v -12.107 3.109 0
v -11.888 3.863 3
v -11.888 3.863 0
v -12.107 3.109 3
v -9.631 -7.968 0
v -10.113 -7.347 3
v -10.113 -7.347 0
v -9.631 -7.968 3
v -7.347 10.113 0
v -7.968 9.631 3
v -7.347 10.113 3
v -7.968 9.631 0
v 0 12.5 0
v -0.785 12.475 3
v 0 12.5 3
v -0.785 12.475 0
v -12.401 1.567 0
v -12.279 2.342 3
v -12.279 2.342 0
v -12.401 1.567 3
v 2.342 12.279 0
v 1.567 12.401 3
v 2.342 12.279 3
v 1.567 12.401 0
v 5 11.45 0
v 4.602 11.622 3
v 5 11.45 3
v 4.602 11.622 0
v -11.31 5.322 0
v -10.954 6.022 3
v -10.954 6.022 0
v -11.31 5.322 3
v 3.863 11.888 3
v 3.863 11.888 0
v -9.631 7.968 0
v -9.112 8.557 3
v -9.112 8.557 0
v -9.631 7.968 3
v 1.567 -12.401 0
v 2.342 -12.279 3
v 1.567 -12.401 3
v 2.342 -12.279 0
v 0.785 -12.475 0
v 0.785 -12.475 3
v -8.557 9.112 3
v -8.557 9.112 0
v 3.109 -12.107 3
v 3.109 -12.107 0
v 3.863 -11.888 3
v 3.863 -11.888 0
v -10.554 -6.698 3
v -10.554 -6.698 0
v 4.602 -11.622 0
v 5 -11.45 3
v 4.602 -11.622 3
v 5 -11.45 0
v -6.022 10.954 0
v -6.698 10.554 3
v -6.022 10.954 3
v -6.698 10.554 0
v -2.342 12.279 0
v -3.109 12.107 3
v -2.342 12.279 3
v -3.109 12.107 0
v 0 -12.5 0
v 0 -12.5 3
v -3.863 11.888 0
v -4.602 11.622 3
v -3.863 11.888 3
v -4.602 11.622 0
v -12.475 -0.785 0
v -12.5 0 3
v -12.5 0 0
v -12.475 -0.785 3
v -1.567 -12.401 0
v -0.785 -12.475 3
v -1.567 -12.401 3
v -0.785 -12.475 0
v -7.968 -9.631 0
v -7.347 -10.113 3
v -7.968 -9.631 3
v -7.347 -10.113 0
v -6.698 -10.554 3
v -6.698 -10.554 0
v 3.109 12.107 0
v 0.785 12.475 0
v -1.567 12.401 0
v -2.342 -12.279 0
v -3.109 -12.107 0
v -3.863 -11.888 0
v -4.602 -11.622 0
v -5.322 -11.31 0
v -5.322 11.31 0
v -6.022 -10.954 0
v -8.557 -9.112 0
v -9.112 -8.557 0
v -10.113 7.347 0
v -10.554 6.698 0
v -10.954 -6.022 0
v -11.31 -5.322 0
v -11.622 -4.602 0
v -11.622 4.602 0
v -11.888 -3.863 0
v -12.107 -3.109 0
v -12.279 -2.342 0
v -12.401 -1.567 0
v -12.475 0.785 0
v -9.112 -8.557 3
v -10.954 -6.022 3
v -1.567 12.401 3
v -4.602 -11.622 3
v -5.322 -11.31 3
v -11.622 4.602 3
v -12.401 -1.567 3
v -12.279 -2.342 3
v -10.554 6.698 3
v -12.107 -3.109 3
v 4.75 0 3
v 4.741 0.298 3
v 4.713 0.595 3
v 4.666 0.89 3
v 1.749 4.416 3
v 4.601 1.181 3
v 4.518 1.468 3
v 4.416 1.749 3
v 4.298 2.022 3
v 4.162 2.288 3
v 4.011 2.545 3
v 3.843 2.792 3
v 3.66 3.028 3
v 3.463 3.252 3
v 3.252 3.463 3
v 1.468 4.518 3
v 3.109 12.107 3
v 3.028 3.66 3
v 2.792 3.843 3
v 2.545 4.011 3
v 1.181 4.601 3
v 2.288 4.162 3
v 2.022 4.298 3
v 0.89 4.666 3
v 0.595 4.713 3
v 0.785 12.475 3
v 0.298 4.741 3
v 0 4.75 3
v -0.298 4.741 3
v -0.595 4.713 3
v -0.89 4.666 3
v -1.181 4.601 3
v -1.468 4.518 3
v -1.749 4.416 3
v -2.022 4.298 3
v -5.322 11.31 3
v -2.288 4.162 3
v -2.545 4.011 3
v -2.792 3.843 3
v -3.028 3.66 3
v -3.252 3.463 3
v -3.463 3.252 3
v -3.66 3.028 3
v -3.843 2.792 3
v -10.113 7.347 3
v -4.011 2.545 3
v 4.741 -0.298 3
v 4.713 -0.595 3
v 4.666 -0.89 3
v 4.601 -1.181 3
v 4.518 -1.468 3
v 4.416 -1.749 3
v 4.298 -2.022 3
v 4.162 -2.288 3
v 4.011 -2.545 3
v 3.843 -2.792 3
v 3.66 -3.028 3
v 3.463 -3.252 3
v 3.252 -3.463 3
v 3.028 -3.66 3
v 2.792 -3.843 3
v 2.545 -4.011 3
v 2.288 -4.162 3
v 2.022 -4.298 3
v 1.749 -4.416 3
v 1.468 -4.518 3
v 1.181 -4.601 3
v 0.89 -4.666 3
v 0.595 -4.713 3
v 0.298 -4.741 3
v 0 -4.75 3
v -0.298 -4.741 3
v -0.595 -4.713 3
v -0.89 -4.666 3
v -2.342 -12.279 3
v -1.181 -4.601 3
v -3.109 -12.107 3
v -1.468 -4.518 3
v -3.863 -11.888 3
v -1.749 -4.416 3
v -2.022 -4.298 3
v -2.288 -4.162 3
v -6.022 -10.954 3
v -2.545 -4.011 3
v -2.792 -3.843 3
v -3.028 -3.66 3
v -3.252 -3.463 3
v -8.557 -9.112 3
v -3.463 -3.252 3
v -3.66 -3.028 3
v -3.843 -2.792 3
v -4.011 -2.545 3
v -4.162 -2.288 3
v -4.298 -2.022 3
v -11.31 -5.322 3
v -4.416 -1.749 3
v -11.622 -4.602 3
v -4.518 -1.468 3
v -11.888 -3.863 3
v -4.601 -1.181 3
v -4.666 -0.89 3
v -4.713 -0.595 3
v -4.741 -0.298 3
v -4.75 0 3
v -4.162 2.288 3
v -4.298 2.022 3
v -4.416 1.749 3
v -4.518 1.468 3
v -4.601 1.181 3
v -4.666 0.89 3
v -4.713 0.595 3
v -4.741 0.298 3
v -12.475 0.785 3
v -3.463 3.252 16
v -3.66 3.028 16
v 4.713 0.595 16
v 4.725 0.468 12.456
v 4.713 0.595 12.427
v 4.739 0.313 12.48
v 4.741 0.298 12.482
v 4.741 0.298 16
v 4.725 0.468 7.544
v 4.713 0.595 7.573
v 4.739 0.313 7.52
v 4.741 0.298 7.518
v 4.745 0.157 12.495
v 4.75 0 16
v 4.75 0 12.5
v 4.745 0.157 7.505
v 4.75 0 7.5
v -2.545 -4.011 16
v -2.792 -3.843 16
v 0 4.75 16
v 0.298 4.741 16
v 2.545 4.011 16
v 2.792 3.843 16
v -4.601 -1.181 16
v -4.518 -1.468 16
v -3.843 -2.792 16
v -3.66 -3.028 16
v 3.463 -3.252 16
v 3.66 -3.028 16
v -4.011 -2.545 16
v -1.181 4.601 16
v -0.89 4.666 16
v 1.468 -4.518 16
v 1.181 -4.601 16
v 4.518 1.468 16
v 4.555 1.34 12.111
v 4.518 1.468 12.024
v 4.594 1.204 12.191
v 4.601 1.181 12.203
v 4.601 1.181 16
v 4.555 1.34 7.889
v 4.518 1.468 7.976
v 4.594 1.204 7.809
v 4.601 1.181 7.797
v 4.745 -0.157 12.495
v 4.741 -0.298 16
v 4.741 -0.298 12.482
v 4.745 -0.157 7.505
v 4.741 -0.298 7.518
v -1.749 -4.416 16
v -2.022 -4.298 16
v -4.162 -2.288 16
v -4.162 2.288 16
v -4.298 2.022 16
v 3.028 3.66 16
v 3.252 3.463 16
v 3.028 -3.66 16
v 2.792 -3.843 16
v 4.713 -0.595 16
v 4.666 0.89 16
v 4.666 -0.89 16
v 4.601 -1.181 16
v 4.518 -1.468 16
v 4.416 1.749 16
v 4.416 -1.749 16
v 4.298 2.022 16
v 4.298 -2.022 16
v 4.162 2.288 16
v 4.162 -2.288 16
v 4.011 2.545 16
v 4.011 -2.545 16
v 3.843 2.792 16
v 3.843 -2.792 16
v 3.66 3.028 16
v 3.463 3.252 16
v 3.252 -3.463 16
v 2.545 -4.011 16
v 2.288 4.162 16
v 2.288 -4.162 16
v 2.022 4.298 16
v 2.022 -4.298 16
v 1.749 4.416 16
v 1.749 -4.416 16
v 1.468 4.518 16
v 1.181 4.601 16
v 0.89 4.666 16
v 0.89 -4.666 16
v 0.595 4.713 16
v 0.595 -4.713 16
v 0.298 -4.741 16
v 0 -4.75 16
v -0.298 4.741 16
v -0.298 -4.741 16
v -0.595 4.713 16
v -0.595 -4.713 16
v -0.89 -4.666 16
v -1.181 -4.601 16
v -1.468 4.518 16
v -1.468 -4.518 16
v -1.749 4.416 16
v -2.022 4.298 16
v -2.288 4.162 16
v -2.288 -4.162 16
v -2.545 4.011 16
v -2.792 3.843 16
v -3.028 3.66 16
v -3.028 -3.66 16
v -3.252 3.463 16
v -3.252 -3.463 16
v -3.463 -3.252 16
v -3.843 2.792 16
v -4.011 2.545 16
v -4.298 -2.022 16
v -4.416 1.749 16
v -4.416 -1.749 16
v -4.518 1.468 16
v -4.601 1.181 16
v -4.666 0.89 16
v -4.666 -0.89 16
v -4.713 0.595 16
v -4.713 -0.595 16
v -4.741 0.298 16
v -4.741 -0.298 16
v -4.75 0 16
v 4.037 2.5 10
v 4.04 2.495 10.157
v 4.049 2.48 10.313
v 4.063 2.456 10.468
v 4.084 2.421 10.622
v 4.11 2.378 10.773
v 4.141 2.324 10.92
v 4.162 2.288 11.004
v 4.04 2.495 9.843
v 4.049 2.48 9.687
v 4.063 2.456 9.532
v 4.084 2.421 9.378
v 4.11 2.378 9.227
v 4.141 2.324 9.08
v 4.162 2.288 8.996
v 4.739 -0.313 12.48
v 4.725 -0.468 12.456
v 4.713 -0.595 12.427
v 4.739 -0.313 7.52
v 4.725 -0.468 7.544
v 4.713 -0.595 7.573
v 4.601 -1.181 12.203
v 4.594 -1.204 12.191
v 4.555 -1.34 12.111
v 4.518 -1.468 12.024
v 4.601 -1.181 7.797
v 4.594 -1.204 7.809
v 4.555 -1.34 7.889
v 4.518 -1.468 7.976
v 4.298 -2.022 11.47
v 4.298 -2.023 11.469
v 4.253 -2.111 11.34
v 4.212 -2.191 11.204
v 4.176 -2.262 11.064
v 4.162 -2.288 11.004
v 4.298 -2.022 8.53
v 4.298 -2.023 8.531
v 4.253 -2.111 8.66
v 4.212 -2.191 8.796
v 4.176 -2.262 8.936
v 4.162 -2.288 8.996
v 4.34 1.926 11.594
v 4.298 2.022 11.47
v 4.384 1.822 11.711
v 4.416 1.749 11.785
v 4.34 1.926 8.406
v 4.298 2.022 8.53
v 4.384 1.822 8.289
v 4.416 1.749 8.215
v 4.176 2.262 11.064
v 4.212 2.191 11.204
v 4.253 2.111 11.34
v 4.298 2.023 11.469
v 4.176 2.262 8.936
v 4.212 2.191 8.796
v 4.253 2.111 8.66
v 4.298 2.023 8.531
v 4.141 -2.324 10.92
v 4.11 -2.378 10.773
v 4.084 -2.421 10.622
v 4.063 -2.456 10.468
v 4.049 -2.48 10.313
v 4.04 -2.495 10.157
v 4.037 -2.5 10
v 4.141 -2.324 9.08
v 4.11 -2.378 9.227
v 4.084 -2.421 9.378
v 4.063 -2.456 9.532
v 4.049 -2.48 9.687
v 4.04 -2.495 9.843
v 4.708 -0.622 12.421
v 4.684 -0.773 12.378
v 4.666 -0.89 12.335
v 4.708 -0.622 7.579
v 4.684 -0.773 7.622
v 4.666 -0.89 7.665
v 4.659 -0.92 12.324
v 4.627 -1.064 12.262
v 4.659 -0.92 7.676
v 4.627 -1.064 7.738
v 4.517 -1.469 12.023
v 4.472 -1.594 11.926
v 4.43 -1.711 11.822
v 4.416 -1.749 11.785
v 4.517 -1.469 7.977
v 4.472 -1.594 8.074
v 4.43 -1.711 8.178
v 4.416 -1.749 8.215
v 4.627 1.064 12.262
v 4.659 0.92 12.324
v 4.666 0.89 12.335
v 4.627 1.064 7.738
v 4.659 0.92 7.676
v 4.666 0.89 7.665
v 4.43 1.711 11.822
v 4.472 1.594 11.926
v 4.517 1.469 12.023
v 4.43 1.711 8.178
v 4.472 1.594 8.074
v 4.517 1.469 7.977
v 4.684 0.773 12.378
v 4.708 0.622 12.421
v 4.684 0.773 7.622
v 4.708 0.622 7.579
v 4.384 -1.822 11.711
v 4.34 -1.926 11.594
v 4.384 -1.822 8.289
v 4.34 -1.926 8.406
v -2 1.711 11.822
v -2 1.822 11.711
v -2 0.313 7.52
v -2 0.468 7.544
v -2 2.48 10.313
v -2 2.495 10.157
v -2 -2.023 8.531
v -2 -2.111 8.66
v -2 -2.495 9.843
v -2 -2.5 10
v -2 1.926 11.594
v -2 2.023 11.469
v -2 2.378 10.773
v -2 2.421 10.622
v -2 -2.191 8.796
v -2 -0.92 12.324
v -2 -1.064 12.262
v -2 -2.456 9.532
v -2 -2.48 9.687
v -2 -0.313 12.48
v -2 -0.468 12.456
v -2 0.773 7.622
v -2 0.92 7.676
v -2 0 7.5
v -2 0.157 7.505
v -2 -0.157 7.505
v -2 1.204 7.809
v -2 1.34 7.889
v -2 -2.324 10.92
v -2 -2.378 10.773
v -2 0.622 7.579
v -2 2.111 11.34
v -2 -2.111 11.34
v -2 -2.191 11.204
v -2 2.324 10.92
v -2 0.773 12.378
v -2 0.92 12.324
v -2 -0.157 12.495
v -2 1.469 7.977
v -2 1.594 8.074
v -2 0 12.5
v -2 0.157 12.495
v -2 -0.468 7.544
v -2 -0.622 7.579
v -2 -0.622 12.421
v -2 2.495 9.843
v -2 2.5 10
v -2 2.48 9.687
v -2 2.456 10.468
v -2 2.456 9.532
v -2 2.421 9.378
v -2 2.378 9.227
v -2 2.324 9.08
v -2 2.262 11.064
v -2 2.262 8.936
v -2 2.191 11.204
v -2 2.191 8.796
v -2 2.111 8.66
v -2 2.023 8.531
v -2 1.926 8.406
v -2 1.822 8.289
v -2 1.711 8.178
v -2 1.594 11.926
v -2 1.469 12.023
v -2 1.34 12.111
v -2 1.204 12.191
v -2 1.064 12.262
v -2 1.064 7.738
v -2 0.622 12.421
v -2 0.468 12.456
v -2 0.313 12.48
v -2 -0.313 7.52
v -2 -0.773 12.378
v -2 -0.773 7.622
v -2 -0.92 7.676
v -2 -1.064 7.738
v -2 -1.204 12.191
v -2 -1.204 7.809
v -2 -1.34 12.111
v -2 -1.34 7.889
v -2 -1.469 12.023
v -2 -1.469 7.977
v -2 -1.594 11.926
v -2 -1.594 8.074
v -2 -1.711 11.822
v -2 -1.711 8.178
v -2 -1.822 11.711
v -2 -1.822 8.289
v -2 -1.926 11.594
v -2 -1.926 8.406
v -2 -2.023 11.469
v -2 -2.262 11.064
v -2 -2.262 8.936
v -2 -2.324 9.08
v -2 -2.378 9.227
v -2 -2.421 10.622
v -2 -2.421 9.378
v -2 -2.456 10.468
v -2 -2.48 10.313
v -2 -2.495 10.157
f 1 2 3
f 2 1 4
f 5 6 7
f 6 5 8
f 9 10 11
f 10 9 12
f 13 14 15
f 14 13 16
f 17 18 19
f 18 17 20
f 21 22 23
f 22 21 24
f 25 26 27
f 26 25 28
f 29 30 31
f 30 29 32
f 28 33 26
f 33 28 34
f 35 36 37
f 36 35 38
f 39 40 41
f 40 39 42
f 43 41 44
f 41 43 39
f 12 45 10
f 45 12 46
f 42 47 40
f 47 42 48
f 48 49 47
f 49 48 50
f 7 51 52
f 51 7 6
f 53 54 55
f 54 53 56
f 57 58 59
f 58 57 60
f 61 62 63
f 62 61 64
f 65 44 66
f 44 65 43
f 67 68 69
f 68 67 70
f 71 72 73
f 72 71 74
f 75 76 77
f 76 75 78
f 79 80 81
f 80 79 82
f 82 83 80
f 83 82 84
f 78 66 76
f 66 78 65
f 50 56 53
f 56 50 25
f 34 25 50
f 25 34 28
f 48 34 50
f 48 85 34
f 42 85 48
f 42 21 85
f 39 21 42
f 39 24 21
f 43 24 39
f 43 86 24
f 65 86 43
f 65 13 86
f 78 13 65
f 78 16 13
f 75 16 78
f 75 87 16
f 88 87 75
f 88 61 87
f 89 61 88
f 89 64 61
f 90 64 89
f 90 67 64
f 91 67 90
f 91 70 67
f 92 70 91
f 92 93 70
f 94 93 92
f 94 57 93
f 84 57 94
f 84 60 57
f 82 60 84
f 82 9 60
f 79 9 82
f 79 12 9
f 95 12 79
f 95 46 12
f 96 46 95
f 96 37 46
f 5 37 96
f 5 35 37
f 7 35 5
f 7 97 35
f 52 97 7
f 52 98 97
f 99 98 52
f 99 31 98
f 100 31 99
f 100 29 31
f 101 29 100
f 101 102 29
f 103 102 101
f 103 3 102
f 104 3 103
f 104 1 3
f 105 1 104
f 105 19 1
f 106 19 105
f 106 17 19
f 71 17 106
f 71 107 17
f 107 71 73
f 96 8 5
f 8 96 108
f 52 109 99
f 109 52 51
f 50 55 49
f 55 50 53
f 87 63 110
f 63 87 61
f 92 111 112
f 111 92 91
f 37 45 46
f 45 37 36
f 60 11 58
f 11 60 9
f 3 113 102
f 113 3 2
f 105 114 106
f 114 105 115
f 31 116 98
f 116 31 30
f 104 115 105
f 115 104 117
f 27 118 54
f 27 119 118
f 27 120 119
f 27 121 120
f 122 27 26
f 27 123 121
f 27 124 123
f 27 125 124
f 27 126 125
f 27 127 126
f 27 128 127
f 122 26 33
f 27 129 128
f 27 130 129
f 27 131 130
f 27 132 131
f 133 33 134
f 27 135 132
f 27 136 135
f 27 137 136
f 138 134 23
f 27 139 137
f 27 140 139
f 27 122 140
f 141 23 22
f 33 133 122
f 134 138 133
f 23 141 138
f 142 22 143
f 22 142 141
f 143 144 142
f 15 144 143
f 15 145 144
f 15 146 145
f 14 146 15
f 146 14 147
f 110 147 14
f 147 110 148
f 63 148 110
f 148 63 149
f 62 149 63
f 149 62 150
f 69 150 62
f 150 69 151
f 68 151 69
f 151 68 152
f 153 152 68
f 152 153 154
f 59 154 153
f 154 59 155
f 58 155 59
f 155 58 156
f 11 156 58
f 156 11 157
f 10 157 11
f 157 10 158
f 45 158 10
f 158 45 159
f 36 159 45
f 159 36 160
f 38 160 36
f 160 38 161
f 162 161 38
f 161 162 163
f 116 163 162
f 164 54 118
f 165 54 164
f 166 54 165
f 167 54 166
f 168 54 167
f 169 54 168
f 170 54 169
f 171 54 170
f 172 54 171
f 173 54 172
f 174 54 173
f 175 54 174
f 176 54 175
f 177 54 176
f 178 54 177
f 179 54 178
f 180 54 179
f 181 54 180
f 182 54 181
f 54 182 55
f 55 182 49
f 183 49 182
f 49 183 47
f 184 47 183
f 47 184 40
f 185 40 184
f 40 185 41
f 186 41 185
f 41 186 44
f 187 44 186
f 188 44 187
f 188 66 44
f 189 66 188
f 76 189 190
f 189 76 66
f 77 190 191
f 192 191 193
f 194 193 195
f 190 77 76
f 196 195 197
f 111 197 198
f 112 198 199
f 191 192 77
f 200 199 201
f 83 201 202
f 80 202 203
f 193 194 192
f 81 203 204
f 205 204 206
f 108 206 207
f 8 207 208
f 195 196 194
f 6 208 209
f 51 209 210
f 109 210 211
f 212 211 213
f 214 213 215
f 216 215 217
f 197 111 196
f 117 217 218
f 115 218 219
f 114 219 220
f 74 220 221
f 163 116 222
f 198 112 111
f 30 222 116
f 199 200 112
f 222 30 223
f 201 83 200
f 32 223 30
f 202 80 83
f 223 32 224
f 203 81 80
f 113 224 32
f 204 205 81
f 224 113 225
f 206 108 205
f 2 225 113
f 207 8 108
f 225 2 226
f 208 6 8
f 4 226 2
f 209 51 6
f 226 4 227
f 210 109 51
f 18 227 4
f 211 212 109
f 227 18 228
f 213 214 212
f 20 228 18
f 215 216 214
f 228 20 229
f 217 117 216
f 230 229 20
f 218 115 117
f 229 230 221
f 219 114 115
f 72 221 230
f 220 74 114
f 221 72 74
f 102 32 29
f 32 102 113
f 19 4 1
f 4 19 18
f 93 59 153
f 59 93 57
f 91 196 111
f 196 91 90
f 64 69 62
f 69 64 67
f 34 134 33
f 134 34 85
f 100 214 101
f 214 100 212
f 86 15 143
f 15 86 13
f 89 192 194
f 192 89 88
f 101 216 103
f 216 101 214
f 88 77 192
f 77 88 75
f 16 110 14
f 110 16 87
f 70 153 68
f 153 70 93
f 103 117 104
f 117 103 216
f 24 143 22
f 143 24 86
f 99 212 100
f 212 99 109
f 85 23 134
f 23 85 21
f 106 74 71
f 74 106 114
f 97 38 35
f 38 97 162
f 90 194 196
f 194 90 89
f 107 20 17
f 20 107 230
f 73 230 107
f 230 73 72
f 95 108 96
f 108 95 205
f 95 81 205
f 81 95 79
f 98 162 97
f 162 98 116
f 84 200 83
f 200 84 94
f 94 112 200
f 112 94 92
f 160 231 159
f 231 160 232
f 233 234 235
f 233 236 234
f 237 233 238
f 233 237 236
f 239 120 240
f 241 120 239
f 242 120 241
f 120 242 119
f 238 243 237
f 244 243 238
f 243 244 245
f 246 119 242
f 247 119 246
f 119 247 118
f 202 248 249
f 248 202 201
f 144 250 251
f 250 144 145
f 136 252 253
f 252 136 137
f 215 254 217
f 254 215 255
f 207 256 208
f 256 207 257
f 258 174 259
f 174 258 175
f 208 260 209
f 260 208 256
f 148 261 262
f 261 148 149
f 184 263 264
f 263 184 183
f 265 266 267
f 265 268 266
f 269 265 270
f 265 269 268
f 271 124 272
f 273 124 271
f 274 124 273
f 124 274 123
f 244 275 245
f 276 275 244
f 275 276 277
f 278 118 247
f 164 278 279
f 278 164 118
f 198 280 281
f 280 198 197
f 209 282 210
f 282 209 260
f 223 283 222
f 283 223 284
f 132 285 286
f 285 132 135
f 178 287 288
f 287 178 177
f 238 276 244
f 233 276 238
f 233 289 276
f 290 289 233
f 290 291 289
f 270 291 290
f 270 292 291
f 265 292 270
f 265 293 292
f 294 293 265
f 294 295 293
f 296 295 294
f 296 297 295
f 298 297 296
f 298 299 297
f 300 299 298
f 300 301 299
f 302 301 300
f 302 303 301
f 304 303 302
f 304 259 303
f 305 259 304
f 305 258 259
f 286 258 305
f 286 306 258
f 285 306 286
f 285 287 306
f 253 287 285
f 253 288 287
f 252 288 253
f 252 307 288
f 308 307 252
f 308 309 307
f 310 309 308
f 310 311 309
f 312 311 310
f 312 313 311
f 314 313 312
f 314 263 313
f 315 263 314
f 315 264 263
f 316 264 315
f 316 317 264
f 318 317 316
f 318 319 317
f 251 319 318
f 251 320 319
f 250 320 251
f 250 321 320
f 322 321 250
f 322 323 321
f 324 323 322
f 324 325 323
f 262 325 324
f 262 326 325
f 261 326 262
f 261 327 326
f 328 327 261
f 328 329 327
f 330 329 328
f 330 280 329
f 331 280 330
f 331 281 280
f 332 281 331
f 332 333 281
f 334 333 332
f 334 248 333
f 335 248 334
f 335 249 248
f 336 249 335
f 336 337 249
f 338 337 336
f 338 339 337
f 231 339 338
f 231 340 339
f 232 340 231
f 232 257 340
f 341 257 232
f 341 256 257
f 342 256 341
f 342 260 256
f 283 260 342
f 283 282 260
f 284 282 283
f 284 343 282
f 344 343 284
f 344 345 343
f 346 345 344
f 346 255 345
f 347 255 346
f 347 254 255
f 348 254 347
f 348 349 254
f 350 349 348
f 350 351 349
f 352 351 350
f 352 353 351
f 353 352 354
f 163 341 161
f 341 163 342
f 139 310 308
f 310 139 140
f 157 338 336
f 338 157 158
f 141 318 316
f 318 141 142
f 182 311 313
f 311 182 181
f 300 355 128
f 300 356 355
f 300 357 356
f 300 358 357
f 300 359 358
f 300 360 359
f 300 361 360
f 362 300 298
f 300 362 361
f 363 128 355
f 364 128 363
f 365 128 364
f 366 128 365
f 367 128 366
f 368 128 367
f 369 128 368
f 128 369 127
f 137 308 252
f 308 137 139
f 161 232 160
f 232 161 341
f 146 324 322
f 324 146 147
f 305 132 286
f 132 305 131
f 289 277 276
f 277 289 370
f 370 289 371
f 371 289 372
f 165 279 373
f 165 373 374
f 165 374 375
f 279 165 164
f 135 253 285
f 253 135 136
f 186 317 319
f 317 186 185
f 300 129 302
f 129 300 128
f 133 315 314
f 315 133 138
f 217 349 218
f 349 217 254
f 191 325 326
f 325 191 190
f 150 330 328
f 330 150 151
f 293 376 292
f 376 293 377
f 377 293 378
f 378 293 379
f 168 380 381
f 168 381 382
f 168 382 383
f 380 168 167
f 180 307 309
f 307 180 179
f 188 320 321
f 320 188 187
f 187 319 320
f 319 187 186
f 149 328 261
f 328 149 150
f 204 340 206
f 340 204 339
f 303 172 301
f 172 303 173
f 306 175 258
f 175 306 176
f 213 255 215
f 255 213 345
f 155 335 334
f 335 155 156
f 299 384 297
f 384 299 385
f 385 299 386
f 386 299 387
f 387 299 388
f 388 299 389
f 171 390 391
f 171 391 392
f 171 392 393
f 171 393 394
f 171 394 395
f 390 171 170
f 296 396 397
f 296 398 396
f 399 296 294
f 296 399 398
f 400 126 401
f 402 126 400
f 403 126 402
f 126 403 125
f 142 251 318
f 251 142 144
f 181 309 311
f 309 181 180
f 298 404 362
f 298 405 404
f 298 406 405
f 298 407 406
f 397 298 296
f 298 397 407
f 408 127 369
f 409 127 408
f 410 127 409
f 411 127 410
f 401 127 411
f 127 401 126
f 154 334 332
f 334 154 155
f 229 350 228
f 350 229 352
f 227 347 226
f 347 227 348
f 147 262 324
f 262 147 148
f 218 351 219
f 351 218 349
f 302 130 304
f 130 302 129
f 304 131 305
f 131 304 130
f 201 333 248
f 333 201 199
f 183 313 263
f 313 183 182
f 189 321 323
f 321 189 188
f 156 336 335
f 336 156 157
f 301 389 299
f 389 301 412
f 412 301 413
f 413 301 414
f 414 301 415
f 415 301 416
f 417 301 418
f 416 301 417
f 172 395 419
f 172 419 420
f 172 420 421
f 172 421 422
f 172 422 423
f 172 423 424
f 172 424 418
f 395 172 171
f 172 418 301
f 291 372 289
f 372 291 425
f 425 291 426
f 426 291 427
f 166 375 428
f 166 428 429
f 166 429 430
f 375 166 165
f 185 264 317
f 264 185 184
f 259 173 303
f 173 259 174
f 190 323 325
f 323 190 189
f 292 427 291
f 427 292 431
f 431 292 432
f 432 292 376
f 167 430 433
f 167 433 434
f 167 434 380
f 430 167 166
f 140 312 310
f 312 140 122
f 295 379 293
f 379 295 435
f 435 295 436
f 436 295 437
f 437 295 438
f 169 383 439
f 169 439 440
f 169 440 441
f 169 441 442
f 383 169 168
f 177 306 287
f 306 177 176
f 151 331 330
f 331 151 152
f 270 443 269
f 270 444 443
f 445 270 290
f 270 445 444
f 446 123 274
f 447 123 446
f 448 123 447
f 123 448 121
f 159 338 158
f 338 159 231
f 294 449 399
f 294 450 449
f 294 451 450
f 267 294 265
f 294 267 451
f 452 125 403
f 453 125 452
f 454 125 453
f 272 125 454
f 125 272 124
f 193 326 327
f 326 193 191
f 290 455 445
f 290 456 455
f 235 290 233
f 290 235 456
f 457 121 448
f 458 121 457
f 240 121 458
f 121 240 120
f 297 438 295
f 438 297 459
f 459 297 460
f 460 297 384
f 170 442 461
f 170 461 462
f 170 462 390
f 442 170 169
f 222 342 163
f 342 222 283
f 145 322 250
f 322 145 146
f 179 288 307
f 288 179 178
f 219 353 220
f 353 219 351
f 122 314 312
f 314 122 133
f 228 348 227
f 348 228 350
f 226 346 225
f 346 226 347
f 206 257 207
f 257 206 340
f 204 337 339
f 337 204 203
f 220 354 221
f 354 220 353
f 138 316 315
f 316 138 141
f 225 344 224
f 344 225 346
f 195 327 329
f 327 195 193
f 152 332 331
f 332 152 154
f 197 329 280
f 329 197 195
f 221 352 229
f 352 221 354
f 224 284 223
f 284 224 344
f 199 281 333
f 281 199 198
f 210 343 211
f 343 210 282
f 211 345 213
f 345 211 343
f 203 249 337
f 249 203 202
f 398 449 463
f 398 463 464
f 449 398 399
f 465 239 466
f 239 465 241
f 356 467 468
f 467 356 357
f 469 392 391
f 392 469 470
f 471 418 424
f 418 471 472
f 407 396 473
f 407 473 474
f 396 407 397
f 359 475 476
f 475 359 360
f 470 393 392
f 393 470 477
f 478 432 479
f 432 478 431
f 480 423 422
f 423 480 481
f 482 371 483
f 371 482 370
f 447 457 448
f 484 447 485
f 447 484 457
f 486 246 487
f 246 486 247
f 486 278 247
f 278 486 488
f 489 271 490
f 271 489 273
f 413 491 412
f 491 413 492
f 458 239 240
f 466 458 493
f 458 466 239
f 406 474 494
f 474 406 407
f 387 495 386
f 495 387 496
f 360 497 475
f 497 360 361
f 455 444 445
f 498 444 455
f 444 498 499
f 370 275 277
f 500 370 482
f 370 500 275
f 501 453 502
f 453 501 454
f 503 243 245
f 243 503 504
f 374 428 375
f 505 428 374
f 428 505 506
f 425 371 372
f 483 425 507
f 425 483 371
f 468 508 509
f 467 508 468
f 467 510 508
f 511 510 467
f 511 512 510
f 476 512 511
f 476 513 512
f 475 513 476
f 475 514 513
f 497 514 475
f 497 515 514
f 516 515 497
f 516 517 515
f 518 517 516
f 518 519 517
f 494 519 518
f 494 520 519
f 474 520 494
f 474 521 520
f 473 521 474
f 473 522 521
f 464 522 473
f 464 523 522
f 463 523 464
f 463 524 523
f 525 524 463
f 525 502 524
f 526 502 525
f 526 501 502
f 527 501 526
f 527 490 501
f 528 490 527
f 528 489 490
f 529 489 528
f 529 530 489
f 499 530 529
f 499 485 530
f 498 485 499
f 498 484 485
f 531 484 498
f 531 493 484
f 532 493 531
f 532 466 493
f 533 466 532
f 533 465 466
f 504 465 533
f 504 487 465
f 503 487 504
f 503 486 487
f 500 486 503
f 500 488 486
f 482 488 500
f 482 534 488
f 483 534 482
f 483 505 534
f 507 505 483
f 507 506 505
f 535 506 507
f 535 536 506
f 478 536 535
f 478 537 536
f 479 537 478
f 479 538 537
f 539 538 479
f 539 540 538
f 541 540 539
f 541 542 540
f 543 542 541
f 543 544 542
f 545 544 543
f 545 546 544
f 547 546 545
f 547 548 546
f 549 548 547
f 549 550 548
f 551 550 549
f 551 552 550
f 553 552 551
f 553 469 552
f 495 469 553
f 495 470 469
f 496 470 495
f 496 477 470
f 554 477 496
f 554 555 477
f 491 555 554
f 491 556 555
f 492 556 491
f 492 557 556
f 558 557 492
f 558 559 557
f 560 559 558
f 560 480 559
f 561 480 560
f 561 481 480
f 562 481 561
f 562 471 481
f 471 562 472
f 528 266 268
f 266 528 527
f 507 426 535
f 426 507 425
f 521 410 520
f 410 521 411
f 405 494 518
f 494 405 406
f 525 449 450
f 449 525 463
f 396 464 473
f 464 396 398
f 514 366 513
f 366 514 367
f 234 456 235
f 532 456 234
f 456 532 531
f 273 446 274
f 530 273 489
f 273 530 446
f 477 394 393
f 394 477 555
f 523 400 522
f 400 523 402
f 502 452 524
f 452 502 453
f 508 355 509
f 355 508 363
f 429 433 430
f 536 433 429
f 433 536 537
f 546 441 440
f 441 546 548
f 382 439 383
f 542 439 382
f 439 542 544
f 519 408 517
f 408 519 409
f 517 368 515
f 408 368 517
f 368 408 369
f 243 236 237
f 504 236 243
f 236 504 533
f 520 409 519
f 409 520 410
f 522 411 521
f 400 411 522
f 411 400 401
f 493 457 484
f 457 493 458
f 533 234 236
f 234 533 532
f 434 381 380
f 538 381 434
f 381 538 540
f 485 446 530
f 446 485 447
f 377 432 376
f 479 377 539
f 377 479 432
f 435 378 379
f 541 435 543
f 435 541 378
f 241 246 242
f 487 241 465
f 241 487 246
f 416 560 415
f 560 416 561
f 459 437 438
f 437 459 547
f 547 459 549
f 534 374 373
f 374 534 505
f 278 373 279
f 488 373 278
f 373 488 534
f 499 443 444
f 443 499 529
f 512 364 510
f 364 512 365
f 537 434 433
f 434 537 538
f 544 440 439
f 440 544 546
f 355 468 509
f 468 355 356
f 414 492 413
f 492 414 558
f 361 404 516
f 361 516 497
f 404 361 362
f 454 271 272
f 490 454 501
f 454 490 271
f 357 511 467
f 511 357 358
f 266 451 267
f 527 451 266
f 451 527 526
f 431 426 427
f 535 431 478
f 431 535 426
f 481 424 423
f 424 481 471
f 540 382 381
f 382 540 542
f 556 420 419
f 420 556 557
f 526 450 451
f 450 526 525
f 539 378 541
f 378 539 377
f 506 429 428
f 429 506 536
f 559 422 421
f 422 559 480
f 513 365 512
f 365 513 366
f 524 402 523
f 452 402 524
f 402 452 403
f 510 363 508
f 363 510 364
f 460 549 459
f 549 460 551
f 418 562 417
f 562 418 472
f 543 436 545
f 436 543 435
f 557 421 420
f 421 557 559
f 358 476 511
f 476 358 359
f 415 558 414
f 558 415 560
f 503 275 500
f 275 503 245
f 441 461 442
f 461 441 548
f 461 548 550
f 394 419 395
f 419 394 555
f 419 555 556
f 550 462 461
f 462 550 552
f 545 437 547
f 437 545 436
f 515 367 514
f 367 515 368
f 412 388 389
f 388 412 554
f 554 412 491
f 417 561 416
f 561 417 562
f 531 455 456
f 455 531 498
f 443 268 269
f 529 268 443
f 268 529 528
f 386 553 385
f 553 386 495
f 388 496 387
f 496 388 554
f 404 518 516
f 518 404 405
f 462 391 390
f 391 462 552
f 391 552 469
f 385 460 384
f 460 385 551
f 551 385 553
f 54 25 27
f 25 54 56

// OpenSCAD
difference() {
    union() {
        cylinder(3, 12.5, 12.5, $fn=100);
        translate([0,0,1]) cylinder(15, 4.75, 4.75, $fn=100);
    }
    rotate([0,90,0]) {
        translate([-10,0,-2]) cylinder(22, 2.5, 2.5, $fn=100);
    }
    translate([5,-20,-1]) {
        cube([10, 40, 10]);
    }
}
